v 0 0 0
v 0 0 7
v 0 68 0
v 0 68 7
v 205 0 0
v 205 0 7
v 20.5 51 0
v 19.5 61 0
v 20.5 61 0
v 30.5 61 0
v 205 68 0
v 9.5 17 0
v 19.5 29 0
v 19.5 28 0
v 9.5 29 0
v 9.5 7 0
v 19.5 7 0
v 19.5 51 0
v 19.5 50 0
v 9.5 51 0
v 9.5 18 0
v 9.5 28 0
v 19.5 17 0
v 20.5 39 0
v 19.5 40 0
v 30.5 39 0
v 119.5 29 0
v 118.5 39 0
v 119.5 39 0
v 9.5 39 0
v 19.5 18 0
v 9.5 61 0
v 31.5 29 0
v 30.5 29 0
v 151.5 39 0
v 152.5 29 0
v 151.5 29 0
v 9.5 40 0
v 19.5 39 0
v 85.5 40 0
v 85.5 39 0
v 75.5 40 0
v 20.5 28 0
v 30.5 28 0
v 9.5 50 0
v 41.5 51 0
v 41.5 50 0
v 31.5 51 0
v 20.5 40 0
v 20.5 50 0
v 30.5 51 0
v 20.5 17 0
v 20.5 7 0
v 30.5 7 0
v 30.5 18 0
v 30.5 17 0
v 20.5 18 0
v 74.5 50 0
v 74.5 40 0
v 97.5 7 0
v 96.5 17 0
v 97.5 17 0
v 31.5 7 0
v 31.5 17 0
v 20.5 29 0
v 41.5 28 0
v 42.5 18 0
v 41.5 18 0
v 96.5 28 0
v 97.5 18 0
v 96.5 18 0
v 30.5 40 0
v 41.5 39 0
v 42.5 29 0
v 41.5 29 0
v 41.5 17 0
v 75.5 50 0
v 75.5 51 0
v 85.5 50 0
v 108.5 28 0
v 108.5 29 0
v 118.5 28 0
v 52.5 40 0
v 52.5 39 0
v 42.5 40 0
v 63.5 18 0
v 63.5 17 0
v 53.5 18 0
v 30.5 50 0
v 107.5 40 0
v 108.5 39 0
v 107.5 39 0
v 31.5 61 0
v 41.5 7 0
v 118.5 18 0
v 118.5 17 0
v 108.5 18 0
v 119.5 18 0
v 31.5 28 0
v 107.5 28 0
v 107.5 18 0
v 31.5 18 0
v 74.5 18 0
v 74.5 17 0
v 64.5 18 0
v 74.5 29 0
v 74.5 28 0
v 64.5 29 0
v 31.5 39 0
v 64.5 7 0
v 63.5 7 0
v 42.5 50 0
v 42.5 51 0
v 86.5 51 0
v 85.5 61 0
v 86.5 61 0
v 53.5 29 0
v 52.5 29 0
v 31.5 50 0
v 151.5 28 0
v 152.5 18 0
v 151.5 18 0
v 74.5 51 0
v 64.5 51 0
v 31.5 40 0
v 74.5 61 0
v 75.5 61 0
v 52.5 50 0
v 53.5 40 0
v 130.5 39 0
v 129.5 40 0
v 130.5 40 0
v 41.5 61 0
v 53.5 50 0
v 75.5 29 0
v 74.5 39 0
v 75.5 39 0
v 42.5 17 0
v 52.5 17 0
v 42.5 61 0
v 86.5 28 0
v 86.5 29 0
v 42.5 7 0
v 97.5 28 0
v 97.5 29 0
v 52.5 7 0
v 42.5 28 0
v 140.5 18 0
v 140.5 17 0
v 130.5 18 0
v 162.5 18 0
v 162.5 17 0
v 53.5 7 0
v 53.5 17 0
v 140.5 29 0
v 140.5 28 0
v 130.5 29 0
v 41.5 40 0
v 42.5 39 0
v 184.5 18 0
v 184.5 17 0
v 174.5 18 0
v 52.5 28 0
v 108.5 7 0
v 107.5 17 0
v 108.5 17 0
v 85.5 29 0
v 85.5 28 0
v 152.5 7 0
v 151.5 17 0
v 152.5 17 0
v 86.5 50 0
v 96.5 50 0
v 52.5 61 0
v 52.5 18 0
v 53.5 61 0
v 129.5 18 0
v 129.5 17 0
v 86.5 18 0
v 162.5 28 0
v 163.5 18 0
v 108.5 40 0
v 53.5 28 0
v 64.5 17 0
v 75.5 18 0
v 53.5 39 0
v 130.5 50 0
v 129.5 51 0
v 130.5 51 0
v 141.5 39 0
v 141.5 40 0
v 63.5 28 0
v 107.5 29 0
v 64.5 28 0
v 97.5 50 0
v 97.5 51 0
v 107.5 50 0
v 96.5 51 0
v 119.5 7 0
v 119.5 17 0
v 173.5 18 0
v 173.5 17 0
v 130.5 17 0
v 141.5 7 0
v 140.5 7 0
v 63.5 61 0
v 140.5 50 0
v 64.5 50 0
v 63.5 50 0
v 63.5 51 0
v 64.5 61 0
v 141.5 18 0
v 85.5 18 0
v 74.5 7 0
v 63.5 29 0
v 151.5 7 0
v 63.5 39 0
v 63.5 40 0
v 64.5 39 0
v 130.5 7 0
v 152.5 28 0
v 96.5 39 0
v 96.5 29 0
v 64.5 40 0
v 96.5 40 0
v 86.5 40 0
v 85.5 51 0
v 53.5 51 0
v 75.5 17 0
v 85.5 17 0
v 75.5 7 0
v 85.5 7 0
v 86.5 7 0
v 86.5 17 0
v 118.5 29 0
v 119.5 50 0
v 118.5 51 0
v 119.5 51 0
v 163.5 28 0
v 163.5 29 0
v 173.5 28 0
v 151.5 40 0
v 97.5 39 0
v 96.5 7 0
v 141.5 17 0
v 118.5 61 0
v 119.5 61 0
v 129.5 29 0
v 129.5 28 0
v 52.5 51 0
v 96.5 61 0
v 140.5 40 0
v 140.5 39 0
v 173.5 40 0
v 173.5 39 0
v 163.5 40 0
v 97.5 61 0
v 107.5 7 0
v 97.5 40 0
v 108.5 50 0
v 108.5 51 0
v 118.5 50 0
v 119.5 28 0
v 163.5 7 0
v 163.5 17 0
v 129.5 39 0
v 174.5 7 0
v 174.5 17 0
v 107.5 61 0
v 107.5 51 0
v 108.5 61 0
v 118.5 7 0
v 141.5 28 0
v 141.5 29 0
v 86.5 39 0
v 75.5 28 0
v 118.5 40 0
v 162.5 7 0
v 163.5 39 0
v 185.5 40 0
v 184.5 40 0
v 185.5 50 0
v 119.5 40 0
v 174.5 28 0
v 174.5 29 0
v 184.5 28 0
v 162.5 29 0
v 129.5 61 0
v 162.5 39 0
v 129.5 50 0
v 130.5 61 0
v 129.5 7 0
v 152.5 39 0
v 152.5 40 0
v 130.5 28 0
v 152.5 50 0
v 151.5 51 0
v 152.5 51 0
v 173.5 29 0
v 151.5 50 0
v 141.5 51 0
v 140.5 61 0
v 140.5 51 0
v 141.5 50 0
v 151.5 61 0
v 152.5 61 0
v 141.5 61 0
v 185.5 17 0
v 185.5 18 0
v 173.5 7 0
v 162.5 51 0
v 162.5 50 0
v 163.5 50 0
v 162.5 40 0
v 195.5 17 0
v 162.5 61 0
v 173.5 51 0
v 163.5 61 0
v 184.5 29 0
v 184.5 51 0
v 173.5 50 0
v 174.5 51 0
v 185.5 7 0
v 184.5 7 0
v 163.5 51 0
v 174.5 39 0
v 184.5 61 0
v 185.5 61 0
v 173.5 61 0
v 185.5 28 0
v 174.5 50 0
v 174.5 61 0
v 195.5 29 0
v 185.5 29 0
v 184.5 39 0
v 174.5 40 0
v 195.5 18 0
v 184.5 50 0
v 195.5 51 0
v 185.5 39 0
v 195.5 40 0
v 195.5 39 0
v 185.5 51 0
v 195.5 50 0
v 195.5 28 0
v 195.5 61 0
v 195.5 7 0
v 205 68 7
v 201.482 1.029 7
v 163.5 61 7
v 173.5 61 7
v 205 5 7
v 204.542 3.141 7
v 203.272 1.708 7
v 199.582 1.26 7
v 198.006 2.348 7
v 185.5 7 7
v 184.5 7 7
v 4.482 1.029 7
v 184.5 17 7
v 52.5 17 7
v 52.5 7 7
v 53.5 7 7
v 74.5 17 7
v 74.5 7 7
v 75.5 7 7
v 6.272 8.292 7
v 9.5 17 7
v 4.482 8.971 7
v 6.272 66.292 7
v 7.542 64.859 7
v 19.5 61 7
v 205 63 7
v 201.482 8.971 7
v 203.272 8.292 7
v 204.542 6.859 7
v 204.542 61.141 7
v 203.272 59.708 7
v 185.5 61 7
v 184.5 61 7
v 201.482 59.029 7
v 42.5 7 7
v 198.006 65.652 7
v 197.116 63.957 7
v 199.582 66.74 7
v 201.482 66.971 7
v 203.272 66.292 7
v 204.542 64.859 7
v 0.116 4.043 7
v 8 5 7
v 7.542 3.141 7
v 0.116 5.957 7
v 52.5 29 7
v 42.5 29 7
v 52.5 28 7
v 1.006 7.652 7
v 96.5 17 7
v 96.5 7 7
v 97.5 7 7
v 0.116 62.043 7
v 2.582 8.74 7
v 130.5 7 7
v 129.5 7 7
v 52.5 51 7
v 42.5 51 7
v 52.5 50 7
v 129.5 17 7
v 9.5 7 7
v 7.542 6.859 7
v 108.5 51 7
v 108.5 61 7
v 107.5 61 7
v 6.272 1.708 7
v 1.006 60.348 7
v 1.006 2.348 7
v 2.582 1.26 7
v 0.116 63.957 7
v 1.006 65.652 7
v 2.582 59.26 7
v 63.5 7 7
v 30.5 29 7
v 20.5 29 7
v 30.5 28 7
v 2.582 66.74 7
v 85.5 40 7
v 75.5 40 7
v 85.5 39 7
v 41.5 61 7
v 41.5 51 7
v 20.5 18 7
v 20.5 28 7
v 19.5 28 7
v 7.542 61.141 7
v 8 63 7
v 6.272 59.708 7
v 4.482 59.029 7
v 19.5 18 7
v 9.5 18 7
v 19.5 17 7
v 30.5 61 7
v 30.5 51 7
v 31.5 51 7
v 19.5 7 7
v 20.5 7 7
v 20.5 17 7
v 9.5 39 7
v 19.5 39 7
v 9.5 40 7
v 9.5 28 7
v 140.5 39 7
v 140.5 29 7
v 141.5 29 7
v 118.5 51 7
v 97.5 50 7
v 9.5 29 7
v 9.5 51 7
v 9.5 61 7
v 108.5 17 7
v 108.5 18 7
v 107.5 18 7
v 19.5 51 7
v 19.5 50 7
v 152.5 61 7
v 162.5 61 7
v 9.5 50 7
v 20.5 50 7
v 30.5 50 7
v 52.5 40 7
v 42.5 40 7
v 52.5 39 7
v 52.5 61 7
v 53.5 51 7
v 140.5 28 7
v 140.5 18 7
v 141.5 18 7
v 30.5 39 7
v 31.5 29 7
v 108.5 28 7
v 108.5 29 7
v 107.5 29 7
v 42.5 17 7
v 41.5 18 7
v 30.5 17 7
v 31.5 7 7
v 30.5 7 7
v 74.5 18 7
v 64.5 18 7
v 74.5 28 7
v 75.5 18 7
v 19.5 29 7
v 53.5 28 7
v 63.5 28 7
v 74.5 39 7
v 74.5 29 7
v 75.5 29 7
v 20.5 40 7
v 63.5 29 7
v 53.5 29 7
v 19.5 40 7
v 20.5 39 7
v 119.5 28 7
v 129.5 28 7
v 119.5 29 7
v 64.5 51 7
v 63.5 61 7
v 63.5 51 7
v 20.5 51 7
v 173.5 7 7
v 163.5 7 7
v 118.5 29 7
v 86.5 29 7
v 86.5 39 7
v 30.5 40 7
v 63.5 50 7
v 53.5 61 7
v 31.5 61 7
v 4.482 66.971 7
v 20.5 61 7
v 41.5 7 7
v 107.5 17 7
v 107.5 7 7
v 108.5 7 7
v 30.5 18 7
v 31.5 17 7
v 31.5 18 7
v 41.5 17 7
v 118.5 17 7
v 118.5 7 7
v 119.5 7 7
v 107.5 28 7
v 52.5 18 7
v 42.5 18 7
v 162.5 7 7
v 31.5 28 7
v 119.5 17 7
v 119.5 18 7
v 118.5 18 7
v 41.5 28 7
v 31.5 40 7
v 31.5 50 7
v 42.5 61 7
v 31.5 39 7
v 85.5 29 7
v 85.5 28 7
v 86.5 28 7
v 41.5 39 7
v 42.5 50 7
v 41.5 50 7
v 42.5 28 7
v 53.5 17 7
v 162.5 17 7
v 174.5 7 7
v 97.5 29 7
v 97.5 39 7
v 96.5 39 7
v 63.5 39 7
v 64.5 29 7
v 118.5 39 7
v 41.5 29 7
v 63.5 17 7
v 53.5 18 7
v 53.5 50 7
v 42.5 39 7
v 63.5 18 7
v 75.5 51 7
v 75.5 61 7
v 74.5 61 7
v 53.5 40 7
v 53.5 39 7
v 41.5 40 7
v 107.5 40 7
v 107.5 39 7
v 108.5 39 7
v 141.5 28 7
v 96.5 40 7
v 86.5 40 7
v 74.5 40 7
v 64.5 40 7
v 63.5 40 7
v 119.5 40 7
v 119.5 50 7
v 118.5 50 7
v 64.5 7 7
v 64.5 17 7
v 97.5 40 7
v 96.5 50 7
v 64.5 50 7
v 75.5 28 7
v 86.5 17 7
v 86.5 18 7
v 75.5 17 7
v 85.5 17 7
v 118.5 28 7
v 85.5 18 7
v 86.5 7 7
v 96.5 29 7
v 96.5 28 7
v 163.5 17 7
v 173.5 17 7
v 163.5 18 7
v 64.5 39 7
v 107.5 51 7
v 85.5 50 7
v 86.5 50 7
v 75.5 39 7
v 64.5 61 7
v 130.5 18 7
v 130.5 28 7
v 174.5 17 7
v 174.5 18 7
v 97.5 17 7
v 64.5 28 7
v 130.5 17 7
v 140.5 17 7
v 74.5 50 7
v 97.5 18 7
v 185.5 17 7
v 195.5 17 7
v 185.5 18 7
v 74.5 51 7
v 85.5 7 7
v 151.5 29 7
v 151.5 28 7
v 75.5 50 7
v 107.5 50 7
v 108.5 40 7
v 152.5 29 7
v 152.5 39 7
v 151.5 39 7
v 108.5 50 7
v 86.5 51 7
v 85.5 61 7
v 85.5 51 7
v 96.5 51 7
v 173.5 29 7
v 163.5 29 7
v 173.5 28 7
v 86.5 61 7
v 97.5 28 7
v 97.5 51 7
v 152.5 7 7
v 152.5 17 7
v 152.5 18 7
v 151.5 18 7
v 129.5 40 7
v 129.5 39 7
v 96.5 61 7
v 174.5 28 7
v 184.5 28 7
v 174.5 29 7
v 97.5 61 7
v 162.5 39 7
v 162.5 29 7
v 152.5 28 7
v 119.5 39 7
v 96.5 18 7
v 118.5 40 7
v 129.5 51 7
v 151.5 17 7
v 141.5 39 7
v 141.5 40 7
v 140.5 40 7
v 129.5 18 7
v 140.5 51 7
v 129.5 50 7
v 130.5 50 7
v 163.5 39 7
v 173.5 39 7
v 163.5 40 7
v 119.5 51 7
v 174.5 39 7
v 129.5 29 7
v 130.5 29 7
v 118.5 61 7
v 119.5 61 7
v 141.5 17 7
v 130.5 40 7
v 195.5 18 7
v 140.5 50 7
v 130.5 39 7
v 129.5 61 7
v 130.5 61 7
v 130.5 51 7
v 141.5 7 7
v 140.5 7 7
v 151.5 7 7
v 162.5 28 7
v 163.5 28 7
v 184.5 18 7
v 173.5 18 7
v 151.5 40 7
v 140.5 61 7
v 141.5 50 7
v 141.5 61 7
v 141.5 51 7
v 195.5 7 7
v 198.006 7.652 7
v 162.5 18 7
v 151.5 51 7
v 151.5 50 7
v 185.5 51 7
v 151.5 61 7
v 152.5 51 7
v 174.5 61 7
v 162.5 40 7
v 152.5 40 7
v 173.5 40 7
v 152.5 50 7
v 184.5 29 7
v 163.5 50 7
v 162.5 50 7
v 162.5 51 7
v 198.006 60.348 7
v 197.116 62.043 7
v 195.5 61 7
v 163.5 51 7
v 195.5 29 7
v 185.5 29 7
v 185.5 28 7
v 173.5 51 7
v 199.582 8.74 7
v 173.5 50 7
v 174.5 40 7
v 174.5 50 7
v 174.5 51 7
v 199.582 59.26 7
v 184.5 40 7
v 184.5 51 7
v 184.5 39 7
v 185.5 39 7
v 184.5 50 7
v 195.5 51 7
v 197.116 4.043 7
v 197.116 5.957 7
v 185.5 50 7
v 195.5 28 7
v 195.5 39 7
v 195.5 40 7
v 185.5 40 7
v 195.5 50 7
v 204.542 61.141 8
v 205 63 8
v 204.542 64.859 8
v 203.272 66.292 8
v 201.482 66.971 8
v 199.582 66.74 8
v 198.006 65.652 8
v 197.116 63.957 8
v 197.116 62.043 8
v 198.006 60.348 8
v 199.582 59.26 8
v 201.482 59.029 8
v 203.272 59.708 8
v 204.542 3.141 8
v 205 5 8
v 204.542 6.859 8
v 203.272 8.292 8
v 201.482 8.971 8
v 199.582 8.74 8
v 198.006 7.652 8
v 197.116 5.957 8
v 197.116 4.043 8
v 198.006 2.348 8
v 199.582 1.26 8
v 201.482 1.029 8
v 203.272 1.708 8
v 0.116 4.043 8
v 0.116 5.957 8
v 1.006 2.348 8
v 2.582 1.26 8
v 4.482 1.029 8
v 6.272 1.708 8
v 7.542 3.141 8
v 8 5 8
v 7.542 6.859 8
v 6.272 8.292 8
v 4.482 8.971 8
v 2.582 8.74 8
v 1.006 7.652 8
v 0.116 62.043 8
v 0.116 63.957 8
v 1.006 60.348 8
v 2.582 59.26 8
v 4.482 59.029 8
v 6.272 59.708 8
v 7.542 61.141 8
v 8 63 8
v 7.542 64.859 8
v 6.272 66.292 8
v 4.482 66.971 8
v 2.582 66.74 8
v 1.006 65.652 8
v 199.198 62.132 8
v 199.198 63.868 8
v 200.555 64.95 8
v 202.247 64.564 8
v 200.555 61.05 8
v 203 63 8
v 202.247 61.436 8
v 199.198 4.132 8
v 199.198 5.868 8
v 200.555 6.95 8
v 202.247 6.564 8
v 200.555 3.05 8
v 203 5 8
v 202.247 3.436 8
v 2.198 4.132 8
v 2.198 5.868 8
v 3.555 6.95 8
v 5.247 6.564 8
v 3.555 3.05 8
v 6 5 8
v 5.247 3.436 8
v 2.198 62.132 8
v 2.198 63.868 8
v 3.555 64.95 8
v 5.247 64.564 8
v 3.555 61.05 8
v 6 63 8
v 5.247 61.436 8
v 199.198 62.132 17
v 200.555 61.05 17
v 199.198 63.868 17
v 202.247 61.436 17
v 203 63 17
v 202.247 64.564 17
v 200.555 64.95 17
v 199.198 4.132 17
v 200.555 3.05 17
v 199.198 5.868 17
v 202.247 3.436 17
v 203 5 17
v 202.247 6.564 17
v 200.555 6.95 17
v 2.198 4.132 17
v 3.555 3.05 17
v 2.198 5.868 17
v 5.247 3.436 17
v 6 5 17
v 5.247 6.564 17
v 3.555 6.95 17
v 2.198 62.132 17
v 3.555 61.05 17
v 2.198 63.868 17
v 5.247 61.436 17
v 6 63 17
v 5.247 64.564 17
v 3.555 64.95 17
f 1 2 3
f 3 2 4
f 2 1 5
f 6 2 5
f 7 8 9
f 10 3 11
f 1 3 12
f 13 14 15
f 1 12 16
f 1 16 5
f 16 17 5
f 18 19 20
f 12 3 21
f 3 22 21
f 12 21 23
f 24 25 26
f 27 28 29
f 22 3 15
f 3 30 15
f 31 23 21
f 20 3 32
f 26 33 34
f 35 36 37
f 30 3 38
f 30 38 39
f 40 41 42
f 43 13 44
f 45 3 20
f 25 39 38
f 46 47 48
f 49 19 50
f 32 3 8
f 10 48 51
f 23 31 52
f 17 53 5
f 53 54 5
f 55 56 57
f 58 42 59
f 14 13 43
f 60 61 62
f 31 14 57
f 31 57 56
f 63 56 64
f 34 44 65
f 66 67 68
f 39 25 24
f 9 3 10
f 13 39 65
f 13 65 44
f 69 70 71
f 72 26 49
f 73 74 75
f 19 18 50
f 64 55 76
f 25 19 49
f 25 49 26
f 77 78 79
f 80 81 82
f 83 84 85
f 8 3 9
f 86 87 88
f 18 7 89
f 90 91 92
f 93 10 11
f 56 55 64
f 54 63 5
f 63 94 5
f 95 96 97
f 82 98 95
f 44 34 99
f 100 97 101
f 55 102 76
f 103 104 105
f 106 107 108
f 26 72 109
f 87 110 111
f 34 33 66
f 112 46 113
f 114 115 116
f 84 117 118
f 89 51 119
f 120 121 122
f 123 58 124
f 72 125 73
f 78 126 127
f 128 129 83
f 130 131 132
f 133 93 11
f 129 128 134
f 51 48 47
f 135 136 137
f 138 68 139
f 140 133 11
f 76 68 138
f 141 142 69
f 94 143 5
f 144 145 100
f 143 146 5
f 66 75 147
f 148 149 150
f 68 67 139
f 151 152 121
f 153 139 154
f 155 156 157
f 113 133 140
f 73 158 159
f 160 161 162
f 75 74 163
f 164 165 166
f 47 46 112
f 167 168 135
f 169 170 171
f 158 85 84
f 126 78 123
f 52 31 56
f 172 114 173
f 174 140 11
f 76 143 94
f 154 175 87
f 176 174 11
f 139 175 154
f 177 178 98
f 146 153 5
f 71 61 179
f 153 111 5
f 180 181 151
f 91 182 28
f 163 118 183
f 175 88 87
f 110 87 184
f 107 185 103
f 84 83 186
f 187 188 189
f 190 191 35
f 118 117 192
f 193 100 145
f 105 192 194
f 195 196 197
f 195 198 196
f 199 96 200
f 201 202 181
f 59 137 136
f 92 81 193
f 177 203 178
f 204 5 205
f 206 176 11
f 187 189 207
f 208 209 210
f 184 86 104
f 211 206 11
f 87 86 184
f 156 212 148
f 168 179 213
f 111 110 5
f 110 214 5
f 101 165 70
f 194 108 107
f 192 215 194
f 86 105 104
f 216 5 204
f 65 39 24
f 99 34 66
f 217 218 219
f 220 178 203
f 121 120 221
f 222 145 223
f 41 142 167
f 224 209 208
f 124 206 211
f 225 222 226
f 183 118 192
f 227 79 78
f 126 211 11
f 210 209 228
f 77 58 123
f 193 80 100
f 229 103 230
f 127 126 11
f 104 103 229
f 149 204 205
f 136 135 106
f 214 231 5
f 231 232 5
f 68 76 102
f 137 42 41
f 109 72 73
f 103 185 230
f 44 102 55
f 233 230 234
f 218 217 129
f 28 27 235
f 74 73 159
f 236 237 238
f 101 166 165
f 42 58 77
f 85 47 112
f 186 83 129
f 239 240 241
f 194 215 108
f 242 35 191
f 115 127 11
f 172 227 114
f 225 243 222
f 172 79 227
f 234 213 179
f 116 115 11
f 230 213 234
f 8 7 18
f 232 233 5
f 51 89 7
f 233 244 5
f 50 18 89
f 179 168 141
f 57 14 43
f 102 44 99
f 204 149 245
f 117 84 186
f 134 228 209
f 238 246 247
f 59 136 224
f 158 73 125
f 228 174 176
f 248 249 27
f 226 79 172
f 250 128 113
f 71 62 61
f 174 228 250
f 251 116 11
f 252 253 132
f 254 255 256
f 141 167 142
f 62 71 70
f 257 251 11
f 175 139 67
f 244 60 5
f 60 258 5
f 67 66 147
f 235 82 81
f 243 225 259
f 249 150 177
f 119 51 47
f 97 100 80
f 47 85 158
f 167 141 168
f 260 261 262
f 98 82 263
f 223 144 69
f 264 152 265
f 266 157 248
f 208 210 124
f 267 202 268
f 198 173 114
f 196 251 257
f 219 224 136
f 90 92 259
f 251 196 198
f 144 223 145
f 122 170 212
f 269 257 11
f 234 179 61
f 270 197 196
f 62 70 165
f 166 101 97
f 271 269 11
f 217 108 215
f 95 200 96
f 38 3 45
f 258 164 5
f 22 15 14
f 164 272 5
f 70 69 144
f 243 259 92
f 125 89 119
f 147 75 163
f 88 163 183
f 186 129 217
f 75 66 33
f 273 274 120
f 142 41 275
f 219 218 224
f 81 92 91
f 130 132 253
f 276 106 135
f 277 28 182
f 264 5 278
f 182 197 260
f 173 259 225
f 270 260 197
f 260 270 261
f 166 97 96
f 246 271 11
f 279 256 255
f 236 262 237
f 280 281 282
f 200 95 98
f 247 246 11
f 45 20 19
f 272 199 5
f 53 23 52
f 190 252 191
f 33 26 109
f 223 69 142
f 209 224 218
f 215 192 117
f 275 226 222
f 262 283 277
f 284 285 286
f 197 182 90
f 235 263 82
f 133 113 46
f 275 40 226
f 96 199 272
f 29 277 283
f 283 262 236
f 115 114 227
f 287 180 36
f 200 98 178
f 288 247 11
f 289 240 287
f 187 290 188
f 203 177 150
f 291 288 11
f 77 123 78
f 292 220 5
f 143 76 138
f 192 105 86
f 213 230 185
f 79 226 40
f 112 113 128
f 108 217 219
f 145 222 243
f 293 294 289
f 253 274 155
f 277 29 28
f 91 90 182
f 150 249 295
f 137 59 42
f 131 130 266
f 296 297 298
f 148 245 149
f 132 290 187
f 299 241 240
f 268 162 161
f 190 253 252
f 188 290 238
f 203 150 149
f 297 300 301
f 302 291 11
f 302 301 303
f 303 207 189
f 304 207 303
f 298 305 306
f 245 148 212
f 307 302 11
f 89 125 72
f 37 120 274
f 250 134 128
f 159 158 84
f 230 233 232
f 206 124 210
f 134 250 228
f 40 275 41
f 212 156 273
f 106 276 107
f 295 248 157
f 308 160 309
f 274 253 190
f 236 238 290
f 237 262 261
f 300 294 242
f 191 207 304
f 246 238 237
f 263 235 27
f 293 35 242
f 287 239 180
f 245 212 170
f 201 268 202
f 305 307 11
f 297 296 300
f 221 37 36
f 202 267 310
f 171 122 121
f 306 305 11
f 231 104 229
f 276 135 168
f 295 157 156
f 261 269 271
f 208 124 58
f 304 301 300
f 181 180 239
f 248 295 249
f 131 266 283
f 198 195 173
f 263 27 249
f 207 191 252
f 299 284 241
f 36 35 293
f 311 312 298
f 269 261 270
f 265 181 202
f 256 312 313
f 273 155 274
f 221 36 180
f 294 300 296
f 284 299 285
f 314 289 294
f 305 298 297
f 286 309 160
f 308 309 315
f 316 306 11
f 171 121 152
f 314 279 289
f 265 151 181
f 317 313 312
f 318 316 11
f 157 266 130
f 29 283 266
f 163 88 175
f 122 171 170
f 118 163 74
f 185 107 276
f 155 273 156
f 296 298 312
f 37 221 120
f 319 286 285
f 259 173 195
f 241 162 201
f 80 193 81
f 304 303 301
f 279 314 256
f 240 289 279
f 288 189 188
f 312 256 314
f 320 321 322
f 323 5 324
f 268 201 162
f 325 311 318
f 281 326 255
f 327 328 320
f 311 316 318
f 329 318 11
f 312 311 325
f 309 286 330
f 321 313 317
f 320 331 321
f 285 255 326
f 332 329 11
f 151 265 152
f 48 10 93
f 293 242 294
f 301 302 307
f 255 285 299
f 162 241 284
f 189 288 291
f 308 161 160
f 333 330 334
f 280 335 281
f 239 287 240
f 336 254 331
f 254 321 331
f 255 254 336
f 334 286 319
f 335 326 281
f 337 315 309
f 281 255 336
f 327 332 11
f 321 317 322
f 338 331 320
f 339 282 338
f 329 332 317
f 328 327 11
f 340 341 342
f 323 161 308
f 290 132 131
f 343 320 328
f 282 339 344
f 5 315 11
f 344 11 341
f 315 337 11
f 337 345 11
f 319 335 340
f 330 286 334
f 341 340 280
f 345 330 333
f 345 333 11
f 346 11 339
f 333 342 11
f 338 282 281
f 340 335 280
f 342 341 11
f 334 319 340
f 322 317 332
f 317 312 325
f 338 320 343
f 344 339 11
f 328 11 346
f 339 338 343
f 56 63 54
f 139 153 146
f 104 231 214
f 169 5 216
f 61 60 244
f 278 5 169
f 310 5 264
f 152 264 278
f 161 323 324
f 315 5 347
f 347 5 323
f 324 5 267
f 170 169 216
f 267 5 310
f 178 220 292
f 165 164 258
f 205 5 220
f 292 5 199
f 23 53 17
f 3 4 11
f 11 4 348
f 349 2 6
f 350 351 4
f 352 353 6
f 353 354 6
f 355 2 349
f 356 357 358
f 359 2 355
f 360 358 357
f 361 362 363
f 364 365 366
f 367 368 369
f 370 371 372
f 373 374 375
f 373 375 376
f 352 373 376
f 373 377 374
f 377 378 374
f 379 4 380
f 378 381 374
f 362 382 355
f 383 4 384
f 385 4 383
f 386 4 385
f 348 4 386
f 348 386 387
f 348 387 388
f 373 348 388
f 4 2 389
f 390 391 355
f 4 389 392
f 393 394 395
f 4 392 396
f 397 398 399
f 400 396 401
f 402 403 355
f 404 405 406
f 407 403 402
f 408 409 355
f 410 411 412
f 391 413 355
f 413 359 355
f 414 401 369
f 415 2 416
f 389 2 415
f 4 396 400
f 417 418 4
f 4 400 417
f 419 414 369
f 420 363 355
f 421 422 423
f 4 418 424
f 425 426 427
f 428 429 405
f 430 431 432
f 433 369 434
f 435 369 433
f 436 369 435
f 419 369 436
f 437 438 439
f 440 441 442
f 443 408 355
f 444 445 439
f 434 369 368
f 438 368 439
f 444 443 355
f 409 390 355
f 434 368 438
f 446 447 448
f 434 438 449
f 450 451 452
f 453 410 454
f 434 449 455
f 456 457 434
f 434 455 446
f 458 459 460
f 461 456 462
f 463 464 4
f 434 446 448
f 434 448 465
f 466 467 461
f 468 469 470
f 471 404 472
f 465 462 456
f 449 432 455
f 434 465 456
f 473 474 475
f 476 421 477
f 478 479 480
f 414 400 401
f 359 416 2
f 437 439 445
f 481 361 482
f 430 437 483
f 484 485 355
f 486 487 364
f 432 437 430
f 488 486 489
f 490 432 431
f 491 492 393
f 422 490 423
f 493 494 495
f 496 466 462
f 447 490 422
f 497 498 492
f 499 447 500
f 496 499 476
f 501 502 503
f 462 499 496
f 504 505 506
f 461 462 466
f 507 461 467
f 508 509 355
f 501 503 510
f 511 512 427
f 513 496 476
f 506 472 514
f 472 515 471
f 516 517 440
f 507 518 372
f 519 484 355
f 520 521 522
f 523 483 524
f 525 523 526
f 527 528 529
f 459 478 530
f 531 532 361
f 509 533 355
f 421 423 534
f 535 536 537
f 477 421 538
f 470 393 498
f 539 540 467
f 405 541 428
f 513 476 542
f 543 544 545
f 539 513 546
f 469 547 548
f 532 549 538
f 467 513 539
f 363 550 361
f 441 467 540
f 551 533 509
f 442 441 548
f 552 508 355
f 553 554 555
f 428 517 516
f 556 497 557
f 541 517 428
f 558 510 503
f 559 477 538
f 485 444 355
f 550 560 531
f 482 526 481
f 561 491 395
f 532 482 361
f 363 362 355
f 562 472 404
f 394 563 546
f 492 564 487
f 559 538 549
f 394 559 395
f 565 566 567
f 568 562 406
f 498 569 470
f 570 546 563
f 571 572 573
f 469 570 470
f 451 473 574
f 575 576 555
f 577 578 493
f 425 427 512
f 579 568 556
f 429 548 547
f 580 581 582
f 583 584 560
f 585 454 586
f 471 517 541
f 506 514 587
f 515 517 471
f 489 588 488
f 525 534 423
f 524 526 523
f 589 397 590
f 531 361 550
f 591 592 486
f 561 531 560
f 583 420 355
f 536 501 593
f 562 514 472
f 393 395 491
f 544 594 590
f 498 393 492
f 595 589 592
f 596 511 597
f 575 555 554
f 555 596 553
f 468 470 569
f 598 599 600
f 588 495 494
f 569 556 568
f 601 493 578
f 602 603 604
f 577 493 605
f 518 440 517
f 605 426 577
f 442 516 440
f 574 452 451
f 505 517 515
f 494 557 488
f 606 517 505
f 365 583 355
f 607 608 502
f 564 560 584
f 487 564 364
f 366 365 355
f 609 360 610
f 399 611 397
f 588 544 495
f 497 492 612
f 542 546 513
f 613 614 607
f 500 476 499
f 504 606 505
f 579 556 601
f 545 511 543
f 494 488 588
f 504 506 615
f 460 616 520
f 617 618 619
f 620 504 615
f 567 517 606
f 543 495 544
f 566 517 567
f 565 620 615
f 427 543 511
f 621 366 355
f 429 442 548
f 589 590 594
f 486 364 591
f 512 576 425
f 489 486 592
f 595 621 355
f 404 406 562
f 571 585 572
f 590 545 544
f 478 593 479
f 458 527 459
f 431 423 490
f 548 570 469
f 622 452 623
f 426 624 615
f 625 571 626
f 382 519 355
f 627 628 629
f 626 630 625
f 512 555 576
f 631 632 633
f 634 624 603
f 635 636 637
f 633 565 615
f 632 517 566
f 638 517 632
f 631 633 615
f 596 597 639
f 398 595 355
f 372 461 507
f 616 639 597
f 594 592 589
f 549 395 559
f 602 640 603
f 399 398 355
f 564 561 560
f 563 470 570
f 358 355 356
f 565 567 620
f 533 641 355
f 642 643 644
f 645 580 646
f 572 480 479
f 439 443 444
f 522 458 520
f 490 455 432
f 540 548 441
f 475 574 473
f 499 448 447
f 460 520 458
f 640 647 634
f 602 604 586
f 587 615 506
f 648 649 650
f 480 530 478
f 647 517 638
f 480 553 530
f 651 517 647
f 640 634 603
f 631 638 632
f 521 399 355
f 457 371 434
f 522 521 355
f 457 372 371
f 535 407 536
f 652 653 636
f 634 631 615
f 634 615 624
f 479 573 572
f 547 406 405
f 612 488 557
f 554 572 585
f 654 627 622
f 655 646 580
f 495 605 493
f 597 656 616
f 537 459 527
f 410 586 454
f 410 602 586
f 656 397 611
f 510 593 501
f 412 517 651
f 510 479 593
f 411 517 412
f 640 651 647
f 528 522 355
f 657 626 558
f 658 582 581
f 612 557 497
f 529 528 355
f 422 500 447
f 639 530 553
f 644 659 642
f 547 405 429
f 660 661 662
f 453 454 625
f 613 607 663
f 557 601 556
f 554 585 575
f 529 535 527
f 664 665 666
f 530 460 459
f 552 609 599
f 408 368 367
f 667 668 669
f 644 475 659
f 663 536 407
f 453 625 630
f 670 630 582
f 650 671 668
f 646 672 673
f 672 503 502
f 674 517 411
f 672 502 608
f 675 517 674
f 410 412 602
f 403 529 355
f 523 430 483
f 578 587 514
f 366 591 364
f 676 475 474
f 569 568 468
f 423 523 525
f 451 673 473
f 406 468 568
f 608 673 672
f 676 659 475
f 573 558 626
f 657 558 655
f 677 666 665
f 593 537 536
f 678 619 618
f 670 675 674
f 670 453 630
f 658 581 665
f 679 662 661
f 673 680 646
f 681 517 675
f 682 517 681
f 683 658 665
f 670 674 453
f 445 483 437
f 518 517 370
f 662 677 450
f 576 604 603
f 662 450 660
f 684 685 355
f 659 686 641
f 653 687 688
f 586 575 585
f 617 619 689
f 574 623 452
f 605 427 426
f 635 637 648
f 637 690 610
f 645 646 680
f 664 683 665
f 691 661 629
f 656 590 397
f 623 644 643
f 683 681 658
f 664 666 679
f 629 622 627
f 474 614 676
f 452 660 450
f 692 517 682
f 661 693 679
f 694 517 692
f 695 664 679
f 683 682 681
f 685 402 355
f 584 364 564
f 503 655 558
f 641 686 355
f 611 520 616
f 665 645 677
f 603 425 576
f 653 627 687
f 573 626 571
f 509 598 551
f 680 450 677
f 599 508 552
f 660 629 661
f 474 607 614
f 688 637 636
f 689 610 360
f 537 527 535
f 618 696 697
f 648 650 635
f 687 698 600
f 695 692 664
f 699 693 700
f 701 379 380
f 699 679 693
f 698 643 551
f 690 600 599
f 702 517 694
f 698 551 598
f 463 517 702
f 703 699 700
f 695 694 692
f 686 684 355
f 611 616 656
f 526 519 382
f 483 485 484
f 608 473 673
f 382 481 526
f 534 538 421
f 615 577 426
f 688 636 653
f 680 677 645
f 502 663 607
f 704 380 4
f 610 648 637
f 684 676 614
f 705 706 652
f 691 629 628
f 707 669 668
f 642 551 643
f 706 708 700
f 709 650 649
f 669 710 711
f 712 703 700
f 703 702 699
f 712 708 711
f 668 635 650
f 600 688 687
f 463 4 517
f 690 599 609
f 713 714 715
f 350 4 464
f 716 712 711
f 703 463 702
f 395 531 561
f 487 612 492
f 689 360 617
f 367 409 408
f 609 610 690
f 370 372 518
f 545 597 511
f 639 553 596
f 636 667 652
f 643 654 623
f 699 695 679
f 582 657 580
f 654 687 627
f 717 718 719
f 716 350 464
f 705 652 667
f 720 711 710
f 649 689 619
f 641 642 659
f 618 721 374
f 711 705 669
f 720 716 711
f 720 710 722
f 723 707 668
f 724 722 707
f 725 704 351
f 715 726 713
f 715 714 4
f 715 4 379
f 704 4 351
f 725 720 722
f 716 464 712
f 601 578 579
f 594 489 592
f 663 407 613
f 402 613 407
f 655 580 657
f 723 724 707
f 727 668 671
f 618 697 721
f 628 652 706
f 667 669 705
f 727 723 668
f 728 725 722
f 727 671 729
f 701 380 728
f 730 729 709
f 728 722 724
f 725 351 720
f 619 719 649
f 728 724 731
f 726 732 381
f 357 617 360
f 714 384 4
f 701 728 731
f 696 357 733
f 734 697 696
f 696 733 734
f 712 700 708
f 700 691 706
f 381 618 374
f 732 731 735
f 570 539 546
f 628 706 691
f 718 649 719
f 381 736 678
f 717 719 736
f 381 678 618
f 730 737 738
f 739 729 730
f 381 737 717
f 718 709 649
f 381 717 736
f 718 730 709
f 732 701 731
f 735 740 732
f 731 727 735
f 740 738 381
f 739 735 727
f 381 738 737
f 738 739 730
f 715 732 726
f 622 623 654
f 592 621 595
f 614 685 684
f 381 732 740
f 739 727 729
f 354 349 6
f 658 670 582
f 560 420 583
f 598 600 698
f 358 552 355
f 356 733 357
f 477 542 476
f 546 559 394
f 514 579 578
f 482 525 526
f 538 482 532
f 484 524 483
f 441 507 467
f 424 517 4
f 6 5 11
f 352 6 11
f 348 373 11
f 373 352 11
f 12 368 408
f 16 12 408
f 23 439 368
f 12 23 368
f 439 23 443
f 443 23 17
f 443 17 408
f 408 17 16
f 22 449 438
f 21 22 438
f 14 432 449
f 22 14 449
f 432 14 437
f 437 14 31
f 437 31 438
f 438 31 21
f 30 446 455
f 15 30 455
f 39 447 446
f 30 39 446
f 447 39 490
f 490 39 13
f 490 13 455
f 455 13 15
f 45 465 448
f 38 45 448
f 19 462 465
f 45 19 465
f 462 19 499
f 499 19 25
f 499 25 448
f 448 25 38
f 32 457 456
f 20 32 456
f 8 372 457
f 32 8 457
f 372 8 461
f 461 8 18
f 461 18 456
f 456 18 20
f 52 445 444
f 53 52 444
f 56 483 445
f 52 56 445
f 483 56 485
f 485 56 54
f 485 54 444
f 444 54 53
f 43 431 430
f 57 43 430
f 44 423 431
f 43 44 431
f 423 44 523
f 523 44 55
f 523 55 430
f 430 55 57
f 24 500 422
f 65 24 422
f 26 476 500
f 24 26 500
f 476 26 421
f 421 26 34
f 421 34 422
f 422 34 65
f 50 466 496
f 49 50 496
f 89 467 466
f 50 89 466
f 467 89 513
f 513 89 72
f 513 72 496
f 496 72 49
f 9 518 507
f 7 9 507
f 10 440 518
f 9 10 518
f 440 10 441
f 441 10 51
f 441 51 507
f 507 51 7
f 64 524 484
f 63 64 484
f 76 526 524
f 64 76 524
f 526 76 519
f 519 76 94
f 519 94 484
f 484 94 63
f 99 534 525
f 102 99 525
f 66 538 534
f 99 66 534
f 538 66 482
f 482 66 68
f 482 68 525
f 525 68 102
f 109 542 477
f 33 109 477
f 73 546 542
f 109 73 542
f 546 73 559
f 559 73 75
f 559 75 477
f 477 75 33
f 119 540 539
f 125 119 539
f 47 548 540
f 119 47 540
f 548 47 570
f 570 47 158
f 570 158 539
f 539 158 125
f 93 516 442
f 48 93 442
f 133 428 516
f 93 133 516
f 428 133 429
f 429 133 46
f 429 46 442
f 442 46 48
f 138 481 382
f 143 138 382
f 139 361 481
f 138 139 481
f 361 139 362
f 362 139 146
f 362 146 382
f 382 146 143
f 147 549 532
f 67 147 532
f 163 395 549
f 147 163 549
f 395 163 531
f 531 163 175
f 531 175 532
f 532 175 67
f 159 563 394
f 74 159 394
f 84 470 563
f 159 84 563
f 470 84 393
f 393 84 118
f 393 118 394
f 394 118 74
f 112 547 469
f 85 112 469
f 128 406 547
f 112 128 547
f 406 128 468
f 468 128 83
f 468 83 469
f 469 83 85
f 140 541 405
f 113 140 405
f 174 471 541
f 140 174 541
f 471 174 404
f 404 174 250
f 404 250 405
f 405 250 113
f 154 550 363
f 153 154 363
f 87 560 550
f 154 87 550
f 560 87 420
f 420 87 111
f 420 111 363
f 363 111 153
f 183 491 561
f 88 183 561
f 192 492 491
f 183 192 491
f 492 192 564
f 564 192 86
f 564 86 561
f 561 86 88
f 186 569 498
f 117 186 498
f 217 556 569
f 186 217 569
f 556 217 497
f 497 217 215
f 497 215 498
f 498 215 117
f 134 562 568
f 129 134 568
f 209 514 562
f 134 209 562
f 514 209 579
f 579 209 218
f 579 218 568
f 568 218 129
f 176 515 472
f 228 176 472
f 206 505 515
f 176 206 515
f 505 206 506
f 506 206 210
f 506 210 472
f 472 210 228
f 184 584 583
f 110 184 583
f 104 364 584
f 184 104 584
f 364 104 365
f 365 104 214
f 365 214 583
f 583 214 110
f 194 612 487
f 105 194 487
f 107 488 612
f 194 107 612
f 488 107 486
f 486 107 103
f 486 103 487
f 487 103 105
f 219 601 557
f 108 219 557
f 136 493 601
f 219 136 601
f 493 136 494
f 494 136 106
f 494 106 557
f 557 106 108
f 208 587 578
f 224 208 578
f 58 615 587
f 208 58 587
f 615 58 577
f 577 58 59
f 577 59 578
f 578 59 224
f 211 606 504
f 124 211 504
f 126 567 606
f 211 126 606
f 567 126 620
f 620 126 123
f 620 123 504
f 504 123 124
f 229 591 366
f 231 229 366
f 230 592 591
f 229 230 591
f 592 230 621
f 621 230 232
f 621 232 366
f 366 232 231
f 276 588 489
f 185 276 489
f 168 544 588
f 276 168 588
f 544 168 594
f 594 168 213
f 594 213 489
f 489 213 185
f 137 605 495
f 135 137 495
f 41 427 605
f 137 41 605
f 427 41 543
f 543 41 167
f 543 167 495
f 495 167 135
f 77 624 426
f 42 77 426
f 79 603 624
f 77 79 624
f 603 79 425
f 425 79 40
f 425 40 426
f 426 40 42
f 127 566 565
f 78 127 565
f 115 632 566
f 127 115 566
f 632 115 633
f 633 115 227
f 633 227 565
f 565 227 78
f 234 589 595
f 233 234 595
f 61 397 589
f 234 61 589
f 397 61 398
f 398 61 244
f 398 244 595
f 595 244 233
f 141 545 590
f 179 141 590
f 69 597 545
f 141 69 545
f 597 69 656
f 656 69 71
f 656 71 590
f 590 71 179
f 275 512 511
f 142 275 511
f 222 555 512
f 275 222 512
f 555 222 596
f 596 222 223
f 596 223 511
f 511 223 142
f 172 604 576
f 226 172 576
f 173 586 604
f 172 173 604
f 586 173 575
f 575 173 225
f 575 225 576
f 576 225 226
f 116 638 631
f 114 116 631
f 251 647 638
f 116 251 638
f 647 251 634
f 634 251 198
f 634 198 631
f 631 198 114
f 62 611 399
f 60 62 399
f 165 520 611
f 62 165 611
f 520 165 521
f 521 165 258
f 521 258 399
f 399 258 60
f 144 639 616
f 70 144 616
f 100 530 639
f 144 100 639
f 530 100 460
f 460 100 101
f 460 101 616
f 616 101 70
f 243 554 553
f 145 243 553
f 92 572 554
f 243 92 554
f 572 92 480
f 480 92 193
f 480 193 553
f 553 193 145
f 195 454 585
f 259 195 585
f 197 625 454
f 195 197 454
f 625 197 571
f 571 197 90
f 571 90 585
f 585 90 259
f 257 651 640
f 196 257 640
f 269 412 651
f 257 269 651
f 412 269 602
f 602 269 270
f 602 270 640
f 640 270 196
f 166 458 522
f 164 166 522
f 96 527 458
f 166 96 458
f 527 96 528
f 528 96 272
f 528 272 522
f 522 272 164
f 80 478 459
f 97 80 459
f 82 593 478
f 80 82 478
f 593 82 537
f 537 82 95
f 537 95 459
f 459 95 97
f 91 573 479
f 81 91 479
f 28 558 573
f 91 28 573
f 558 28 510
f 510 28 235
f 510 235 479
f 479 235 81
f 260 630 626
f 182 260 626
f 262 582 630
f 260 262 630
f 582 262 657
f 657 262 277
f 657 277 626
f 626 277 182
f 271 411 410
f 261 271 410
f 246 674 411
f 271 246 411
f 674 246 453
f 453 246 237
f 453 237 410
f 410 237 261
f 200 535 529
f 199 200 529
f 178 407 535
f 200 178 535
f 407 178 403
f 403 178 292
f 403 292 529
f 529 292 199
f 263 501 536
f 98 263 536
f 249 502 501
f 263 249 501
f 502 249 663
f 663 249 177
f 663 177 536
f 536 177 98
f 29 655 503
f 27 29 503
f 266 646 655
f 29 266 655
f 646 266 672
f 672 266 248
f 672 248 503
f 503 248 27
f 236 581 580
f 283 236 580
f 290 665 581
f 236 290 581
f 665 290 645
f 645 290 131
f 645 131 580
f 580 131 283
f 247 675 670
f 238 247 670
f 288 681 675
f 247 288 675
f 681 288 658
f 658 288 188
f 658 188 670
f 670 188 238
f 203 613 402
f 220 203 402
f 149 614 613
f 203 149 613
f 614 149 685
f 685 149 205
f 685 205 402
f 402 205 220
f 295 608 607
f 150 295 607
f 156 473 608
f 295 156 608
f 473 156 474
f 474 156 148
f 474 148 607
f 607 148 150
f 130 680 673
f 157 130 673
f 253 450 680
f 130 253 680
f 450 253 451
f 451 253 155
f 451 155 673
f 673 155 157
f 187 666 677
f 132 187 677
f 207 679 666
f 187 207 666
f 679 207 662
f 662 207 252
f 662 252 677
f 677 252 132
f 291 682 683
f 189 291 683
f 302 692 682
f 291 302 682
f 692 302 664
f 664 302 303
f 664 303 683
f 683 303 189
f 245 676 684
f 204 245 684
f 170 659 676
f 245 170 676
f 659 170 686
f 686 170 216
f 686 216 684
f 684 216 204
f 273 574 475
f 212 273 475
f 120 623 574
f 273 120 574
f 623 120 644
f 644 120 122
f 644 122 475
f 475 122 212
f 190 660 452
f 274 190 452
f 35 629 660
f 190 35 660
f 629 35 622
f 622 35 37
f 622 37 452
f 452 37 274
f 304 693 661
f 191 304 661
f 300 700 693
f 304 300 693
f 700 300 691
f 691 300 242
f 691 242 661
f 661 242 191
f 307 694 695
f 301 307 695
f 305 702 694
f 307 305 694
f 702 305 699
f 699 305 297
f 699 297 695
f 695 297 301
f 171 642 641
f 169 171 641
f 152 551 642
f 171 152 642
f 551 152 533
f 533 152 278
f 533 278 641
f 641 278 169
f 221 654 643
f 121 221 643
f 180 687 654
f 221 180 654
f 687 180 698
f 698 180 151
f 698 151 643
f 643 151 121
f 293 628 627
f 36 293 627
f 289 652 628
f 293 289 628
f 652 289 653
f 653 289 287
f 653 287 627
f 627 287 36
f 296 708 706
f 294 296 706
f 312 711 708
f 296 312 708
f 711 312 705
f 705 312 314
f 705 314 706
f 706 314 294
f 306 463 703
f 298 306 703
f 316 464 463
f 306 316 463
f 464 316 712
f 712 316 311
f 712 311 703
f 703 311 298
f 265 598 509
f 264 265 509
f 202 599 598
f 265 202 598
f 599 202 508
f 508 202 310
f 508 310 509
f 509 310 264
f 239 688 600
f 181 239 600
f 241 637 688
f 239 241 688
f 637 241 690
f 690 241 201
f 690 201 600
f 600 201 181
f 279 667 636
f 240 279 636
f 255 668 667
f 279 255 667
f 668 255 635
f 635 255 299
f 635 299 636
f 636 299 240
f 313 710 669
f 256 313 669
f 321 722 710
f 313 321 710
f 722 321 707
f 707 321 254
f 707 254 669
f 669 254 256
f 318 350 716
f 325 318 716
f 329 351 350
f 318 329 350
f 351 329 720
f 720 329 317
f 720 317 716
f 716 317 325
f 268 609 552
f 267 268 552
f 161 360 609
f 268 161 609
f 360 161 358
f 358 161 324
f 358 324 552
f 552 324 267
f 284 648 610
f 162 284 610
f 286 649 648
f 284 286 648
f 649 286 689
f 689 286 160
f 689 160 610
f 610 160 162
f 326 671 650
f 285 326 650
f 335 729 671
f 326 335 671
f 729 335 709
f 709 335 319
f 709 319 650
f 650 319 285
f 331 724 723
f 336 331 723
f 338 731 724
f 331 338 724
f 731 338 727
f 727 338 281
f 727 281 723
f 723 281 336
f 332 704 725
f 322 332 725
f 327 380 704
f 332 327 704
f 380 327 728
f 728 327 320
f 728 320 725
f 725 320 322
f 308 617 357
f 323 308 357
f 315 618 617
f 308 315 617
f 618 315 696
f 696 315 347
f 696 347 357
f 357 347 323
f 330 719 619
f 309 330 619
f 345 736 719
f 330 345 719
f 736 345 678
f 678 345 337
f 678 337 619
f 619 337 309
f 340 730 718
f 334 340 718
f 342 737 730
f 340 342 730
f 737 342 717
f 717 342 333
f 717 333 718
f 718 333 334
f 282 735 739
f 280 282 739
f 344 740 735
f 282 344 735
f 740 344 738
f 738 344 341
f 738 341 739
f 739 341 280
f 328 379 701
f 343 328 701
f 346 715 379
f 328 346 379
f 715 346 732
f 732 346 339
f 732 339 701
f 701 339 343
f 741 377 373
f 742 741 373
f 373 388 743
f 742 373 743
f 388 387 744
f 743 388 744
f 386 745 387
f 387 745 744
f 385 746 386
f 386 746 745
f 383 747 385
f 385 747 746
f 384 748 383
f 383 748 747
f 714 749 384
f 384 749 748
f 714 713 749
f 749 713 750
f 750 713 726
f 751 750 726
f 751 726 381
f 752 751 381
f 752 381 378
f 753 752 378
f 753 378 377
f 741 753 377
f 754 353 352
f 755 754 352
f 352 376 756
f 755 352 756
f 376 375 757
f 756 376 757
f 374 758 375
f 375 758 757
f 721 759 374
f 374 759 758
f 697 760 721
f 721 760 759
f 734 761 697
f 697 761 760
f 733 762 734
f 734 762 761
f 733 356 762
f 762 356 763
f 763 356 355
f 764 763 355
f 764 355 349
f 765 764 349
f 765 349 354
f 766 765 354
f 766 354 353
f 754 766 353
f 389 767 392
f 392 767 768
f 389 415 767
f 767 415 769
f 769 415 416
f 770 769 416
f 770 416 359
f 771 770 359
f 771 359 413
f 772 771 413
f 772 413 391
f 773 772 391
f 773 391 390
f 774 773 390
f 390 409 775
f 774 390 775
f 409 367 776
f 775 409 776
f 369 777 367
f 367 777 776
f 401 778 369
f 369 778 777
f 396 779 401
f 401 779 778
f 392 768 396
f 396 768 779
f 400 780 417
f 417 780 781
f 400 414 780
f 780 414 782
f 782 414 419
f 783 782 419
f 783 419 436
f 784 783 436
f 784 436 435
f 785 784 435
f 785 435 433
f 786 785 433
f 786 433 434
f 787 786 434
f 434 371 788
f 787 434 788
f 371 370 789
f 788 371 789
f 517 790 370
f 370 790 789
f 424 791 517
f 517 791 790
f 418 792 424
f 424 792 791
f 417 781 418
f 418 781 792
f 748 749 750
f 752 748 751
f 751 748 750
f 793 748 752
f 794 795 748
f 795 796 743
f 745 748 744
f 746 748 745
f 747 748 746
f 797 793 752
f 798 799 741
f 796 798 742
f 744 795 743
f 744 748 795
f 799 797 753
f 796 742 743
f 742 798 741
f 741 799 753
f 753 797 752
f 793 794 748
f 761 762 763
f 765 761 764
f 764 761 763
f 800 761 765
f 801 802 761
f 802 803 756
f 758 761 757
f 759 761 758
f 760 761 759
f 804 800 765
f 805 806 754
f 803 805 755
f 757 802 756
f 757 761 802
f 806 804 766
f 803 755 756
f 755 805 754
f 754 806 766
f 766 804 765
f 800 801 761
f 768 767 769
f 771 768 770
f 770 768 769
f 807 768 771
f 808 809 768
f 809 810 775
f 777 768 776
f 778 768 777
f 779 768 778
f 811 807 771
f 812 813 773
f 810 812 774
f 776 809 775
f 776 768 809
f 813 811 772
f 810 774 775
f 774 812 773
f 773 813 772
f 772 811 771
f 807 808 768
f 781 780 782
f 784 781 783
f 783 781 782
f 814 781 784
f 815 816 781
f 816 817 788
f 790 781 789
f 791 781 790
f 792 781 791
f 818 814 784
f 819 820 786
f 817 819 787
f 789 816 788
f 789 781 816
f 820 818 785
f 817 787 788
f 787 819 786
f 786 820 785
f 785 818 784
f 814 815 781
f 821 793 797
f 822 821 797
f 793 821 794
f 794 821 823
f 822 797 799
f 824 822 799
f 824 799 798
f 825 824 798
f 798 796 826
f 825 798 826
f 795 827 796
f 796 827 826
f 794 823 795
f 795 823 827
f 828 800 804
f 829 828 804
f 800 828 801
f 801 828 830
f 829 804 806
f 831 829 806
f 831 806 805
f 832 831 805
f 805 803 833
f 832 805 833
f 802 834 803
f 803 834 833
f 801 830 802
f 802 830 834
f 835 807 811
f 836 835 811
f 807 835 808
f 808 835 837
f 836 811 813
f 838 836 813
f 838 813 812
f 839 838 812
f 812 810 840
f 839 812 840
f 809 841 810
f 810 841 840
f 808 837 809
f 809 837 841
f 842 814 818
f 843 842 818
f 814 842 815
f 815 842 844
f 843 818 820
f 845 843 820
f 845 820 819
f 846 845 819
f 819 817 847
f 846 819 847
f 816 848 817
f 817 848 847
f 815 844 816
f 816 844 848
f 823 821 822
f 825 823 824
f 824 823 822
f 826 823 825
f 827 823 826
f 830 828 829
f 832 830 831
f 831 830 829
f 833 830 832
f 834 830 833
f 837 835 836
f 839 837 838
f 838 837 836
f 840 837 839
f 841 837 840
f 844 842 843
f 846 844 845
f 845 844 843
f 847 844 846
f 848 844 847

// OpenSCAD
px = 205;
py = 68;
nx = 17;
ny = 5;
sl = 10;
cp = 11;

/*
translate([0,0,8]) {
difference() {
	cube([px,py,5]);
	translate([4,5,-2.5]) {
		cylinder(10,2,2);
	}
	translate([4,py-5,-2.5]) {
		cylinder(10,2,2);
	}
	translate([px-4,5,-2.5]) {
		cylinder(10,2,2);
	}
	translate([px-4,py-5,-2.5]) {
		cylinder(10,2,2);
	}
}
}
*/
translate([0,0,0]) {
	difference() {
		cube([px,py,7]);

		for (i = [0:nx-1]) {
			for (j = [0:ny-1]) {
				translate([i*cp + (px-((nx-1)*cp+sl))/2, j*cp + (py-((ny-1)*cp+sl))/2, 0]) {
					cube(sl,sl,10);
				}
				
			}	
		}
	}

	translate([4,5,7]) {
		union() {
			cylinder(10,2,2);
			cylinder(1,4,4);
		}
	}
	translate([4,py-5,7]) {
		union() {
			cylinder(10,2,2);
			cylinder(1,4,4);
		}
	}
	translate([px-4,5,7]) {
		union() {
			cylinder(10,2,2);
			cylinder(1,4,4);
		}
	}
	translate([px-4,py-5,7]) {
		union() {
			cylinder(10,2,2);
			cylinder(1,4,4);
		}
	}


}
